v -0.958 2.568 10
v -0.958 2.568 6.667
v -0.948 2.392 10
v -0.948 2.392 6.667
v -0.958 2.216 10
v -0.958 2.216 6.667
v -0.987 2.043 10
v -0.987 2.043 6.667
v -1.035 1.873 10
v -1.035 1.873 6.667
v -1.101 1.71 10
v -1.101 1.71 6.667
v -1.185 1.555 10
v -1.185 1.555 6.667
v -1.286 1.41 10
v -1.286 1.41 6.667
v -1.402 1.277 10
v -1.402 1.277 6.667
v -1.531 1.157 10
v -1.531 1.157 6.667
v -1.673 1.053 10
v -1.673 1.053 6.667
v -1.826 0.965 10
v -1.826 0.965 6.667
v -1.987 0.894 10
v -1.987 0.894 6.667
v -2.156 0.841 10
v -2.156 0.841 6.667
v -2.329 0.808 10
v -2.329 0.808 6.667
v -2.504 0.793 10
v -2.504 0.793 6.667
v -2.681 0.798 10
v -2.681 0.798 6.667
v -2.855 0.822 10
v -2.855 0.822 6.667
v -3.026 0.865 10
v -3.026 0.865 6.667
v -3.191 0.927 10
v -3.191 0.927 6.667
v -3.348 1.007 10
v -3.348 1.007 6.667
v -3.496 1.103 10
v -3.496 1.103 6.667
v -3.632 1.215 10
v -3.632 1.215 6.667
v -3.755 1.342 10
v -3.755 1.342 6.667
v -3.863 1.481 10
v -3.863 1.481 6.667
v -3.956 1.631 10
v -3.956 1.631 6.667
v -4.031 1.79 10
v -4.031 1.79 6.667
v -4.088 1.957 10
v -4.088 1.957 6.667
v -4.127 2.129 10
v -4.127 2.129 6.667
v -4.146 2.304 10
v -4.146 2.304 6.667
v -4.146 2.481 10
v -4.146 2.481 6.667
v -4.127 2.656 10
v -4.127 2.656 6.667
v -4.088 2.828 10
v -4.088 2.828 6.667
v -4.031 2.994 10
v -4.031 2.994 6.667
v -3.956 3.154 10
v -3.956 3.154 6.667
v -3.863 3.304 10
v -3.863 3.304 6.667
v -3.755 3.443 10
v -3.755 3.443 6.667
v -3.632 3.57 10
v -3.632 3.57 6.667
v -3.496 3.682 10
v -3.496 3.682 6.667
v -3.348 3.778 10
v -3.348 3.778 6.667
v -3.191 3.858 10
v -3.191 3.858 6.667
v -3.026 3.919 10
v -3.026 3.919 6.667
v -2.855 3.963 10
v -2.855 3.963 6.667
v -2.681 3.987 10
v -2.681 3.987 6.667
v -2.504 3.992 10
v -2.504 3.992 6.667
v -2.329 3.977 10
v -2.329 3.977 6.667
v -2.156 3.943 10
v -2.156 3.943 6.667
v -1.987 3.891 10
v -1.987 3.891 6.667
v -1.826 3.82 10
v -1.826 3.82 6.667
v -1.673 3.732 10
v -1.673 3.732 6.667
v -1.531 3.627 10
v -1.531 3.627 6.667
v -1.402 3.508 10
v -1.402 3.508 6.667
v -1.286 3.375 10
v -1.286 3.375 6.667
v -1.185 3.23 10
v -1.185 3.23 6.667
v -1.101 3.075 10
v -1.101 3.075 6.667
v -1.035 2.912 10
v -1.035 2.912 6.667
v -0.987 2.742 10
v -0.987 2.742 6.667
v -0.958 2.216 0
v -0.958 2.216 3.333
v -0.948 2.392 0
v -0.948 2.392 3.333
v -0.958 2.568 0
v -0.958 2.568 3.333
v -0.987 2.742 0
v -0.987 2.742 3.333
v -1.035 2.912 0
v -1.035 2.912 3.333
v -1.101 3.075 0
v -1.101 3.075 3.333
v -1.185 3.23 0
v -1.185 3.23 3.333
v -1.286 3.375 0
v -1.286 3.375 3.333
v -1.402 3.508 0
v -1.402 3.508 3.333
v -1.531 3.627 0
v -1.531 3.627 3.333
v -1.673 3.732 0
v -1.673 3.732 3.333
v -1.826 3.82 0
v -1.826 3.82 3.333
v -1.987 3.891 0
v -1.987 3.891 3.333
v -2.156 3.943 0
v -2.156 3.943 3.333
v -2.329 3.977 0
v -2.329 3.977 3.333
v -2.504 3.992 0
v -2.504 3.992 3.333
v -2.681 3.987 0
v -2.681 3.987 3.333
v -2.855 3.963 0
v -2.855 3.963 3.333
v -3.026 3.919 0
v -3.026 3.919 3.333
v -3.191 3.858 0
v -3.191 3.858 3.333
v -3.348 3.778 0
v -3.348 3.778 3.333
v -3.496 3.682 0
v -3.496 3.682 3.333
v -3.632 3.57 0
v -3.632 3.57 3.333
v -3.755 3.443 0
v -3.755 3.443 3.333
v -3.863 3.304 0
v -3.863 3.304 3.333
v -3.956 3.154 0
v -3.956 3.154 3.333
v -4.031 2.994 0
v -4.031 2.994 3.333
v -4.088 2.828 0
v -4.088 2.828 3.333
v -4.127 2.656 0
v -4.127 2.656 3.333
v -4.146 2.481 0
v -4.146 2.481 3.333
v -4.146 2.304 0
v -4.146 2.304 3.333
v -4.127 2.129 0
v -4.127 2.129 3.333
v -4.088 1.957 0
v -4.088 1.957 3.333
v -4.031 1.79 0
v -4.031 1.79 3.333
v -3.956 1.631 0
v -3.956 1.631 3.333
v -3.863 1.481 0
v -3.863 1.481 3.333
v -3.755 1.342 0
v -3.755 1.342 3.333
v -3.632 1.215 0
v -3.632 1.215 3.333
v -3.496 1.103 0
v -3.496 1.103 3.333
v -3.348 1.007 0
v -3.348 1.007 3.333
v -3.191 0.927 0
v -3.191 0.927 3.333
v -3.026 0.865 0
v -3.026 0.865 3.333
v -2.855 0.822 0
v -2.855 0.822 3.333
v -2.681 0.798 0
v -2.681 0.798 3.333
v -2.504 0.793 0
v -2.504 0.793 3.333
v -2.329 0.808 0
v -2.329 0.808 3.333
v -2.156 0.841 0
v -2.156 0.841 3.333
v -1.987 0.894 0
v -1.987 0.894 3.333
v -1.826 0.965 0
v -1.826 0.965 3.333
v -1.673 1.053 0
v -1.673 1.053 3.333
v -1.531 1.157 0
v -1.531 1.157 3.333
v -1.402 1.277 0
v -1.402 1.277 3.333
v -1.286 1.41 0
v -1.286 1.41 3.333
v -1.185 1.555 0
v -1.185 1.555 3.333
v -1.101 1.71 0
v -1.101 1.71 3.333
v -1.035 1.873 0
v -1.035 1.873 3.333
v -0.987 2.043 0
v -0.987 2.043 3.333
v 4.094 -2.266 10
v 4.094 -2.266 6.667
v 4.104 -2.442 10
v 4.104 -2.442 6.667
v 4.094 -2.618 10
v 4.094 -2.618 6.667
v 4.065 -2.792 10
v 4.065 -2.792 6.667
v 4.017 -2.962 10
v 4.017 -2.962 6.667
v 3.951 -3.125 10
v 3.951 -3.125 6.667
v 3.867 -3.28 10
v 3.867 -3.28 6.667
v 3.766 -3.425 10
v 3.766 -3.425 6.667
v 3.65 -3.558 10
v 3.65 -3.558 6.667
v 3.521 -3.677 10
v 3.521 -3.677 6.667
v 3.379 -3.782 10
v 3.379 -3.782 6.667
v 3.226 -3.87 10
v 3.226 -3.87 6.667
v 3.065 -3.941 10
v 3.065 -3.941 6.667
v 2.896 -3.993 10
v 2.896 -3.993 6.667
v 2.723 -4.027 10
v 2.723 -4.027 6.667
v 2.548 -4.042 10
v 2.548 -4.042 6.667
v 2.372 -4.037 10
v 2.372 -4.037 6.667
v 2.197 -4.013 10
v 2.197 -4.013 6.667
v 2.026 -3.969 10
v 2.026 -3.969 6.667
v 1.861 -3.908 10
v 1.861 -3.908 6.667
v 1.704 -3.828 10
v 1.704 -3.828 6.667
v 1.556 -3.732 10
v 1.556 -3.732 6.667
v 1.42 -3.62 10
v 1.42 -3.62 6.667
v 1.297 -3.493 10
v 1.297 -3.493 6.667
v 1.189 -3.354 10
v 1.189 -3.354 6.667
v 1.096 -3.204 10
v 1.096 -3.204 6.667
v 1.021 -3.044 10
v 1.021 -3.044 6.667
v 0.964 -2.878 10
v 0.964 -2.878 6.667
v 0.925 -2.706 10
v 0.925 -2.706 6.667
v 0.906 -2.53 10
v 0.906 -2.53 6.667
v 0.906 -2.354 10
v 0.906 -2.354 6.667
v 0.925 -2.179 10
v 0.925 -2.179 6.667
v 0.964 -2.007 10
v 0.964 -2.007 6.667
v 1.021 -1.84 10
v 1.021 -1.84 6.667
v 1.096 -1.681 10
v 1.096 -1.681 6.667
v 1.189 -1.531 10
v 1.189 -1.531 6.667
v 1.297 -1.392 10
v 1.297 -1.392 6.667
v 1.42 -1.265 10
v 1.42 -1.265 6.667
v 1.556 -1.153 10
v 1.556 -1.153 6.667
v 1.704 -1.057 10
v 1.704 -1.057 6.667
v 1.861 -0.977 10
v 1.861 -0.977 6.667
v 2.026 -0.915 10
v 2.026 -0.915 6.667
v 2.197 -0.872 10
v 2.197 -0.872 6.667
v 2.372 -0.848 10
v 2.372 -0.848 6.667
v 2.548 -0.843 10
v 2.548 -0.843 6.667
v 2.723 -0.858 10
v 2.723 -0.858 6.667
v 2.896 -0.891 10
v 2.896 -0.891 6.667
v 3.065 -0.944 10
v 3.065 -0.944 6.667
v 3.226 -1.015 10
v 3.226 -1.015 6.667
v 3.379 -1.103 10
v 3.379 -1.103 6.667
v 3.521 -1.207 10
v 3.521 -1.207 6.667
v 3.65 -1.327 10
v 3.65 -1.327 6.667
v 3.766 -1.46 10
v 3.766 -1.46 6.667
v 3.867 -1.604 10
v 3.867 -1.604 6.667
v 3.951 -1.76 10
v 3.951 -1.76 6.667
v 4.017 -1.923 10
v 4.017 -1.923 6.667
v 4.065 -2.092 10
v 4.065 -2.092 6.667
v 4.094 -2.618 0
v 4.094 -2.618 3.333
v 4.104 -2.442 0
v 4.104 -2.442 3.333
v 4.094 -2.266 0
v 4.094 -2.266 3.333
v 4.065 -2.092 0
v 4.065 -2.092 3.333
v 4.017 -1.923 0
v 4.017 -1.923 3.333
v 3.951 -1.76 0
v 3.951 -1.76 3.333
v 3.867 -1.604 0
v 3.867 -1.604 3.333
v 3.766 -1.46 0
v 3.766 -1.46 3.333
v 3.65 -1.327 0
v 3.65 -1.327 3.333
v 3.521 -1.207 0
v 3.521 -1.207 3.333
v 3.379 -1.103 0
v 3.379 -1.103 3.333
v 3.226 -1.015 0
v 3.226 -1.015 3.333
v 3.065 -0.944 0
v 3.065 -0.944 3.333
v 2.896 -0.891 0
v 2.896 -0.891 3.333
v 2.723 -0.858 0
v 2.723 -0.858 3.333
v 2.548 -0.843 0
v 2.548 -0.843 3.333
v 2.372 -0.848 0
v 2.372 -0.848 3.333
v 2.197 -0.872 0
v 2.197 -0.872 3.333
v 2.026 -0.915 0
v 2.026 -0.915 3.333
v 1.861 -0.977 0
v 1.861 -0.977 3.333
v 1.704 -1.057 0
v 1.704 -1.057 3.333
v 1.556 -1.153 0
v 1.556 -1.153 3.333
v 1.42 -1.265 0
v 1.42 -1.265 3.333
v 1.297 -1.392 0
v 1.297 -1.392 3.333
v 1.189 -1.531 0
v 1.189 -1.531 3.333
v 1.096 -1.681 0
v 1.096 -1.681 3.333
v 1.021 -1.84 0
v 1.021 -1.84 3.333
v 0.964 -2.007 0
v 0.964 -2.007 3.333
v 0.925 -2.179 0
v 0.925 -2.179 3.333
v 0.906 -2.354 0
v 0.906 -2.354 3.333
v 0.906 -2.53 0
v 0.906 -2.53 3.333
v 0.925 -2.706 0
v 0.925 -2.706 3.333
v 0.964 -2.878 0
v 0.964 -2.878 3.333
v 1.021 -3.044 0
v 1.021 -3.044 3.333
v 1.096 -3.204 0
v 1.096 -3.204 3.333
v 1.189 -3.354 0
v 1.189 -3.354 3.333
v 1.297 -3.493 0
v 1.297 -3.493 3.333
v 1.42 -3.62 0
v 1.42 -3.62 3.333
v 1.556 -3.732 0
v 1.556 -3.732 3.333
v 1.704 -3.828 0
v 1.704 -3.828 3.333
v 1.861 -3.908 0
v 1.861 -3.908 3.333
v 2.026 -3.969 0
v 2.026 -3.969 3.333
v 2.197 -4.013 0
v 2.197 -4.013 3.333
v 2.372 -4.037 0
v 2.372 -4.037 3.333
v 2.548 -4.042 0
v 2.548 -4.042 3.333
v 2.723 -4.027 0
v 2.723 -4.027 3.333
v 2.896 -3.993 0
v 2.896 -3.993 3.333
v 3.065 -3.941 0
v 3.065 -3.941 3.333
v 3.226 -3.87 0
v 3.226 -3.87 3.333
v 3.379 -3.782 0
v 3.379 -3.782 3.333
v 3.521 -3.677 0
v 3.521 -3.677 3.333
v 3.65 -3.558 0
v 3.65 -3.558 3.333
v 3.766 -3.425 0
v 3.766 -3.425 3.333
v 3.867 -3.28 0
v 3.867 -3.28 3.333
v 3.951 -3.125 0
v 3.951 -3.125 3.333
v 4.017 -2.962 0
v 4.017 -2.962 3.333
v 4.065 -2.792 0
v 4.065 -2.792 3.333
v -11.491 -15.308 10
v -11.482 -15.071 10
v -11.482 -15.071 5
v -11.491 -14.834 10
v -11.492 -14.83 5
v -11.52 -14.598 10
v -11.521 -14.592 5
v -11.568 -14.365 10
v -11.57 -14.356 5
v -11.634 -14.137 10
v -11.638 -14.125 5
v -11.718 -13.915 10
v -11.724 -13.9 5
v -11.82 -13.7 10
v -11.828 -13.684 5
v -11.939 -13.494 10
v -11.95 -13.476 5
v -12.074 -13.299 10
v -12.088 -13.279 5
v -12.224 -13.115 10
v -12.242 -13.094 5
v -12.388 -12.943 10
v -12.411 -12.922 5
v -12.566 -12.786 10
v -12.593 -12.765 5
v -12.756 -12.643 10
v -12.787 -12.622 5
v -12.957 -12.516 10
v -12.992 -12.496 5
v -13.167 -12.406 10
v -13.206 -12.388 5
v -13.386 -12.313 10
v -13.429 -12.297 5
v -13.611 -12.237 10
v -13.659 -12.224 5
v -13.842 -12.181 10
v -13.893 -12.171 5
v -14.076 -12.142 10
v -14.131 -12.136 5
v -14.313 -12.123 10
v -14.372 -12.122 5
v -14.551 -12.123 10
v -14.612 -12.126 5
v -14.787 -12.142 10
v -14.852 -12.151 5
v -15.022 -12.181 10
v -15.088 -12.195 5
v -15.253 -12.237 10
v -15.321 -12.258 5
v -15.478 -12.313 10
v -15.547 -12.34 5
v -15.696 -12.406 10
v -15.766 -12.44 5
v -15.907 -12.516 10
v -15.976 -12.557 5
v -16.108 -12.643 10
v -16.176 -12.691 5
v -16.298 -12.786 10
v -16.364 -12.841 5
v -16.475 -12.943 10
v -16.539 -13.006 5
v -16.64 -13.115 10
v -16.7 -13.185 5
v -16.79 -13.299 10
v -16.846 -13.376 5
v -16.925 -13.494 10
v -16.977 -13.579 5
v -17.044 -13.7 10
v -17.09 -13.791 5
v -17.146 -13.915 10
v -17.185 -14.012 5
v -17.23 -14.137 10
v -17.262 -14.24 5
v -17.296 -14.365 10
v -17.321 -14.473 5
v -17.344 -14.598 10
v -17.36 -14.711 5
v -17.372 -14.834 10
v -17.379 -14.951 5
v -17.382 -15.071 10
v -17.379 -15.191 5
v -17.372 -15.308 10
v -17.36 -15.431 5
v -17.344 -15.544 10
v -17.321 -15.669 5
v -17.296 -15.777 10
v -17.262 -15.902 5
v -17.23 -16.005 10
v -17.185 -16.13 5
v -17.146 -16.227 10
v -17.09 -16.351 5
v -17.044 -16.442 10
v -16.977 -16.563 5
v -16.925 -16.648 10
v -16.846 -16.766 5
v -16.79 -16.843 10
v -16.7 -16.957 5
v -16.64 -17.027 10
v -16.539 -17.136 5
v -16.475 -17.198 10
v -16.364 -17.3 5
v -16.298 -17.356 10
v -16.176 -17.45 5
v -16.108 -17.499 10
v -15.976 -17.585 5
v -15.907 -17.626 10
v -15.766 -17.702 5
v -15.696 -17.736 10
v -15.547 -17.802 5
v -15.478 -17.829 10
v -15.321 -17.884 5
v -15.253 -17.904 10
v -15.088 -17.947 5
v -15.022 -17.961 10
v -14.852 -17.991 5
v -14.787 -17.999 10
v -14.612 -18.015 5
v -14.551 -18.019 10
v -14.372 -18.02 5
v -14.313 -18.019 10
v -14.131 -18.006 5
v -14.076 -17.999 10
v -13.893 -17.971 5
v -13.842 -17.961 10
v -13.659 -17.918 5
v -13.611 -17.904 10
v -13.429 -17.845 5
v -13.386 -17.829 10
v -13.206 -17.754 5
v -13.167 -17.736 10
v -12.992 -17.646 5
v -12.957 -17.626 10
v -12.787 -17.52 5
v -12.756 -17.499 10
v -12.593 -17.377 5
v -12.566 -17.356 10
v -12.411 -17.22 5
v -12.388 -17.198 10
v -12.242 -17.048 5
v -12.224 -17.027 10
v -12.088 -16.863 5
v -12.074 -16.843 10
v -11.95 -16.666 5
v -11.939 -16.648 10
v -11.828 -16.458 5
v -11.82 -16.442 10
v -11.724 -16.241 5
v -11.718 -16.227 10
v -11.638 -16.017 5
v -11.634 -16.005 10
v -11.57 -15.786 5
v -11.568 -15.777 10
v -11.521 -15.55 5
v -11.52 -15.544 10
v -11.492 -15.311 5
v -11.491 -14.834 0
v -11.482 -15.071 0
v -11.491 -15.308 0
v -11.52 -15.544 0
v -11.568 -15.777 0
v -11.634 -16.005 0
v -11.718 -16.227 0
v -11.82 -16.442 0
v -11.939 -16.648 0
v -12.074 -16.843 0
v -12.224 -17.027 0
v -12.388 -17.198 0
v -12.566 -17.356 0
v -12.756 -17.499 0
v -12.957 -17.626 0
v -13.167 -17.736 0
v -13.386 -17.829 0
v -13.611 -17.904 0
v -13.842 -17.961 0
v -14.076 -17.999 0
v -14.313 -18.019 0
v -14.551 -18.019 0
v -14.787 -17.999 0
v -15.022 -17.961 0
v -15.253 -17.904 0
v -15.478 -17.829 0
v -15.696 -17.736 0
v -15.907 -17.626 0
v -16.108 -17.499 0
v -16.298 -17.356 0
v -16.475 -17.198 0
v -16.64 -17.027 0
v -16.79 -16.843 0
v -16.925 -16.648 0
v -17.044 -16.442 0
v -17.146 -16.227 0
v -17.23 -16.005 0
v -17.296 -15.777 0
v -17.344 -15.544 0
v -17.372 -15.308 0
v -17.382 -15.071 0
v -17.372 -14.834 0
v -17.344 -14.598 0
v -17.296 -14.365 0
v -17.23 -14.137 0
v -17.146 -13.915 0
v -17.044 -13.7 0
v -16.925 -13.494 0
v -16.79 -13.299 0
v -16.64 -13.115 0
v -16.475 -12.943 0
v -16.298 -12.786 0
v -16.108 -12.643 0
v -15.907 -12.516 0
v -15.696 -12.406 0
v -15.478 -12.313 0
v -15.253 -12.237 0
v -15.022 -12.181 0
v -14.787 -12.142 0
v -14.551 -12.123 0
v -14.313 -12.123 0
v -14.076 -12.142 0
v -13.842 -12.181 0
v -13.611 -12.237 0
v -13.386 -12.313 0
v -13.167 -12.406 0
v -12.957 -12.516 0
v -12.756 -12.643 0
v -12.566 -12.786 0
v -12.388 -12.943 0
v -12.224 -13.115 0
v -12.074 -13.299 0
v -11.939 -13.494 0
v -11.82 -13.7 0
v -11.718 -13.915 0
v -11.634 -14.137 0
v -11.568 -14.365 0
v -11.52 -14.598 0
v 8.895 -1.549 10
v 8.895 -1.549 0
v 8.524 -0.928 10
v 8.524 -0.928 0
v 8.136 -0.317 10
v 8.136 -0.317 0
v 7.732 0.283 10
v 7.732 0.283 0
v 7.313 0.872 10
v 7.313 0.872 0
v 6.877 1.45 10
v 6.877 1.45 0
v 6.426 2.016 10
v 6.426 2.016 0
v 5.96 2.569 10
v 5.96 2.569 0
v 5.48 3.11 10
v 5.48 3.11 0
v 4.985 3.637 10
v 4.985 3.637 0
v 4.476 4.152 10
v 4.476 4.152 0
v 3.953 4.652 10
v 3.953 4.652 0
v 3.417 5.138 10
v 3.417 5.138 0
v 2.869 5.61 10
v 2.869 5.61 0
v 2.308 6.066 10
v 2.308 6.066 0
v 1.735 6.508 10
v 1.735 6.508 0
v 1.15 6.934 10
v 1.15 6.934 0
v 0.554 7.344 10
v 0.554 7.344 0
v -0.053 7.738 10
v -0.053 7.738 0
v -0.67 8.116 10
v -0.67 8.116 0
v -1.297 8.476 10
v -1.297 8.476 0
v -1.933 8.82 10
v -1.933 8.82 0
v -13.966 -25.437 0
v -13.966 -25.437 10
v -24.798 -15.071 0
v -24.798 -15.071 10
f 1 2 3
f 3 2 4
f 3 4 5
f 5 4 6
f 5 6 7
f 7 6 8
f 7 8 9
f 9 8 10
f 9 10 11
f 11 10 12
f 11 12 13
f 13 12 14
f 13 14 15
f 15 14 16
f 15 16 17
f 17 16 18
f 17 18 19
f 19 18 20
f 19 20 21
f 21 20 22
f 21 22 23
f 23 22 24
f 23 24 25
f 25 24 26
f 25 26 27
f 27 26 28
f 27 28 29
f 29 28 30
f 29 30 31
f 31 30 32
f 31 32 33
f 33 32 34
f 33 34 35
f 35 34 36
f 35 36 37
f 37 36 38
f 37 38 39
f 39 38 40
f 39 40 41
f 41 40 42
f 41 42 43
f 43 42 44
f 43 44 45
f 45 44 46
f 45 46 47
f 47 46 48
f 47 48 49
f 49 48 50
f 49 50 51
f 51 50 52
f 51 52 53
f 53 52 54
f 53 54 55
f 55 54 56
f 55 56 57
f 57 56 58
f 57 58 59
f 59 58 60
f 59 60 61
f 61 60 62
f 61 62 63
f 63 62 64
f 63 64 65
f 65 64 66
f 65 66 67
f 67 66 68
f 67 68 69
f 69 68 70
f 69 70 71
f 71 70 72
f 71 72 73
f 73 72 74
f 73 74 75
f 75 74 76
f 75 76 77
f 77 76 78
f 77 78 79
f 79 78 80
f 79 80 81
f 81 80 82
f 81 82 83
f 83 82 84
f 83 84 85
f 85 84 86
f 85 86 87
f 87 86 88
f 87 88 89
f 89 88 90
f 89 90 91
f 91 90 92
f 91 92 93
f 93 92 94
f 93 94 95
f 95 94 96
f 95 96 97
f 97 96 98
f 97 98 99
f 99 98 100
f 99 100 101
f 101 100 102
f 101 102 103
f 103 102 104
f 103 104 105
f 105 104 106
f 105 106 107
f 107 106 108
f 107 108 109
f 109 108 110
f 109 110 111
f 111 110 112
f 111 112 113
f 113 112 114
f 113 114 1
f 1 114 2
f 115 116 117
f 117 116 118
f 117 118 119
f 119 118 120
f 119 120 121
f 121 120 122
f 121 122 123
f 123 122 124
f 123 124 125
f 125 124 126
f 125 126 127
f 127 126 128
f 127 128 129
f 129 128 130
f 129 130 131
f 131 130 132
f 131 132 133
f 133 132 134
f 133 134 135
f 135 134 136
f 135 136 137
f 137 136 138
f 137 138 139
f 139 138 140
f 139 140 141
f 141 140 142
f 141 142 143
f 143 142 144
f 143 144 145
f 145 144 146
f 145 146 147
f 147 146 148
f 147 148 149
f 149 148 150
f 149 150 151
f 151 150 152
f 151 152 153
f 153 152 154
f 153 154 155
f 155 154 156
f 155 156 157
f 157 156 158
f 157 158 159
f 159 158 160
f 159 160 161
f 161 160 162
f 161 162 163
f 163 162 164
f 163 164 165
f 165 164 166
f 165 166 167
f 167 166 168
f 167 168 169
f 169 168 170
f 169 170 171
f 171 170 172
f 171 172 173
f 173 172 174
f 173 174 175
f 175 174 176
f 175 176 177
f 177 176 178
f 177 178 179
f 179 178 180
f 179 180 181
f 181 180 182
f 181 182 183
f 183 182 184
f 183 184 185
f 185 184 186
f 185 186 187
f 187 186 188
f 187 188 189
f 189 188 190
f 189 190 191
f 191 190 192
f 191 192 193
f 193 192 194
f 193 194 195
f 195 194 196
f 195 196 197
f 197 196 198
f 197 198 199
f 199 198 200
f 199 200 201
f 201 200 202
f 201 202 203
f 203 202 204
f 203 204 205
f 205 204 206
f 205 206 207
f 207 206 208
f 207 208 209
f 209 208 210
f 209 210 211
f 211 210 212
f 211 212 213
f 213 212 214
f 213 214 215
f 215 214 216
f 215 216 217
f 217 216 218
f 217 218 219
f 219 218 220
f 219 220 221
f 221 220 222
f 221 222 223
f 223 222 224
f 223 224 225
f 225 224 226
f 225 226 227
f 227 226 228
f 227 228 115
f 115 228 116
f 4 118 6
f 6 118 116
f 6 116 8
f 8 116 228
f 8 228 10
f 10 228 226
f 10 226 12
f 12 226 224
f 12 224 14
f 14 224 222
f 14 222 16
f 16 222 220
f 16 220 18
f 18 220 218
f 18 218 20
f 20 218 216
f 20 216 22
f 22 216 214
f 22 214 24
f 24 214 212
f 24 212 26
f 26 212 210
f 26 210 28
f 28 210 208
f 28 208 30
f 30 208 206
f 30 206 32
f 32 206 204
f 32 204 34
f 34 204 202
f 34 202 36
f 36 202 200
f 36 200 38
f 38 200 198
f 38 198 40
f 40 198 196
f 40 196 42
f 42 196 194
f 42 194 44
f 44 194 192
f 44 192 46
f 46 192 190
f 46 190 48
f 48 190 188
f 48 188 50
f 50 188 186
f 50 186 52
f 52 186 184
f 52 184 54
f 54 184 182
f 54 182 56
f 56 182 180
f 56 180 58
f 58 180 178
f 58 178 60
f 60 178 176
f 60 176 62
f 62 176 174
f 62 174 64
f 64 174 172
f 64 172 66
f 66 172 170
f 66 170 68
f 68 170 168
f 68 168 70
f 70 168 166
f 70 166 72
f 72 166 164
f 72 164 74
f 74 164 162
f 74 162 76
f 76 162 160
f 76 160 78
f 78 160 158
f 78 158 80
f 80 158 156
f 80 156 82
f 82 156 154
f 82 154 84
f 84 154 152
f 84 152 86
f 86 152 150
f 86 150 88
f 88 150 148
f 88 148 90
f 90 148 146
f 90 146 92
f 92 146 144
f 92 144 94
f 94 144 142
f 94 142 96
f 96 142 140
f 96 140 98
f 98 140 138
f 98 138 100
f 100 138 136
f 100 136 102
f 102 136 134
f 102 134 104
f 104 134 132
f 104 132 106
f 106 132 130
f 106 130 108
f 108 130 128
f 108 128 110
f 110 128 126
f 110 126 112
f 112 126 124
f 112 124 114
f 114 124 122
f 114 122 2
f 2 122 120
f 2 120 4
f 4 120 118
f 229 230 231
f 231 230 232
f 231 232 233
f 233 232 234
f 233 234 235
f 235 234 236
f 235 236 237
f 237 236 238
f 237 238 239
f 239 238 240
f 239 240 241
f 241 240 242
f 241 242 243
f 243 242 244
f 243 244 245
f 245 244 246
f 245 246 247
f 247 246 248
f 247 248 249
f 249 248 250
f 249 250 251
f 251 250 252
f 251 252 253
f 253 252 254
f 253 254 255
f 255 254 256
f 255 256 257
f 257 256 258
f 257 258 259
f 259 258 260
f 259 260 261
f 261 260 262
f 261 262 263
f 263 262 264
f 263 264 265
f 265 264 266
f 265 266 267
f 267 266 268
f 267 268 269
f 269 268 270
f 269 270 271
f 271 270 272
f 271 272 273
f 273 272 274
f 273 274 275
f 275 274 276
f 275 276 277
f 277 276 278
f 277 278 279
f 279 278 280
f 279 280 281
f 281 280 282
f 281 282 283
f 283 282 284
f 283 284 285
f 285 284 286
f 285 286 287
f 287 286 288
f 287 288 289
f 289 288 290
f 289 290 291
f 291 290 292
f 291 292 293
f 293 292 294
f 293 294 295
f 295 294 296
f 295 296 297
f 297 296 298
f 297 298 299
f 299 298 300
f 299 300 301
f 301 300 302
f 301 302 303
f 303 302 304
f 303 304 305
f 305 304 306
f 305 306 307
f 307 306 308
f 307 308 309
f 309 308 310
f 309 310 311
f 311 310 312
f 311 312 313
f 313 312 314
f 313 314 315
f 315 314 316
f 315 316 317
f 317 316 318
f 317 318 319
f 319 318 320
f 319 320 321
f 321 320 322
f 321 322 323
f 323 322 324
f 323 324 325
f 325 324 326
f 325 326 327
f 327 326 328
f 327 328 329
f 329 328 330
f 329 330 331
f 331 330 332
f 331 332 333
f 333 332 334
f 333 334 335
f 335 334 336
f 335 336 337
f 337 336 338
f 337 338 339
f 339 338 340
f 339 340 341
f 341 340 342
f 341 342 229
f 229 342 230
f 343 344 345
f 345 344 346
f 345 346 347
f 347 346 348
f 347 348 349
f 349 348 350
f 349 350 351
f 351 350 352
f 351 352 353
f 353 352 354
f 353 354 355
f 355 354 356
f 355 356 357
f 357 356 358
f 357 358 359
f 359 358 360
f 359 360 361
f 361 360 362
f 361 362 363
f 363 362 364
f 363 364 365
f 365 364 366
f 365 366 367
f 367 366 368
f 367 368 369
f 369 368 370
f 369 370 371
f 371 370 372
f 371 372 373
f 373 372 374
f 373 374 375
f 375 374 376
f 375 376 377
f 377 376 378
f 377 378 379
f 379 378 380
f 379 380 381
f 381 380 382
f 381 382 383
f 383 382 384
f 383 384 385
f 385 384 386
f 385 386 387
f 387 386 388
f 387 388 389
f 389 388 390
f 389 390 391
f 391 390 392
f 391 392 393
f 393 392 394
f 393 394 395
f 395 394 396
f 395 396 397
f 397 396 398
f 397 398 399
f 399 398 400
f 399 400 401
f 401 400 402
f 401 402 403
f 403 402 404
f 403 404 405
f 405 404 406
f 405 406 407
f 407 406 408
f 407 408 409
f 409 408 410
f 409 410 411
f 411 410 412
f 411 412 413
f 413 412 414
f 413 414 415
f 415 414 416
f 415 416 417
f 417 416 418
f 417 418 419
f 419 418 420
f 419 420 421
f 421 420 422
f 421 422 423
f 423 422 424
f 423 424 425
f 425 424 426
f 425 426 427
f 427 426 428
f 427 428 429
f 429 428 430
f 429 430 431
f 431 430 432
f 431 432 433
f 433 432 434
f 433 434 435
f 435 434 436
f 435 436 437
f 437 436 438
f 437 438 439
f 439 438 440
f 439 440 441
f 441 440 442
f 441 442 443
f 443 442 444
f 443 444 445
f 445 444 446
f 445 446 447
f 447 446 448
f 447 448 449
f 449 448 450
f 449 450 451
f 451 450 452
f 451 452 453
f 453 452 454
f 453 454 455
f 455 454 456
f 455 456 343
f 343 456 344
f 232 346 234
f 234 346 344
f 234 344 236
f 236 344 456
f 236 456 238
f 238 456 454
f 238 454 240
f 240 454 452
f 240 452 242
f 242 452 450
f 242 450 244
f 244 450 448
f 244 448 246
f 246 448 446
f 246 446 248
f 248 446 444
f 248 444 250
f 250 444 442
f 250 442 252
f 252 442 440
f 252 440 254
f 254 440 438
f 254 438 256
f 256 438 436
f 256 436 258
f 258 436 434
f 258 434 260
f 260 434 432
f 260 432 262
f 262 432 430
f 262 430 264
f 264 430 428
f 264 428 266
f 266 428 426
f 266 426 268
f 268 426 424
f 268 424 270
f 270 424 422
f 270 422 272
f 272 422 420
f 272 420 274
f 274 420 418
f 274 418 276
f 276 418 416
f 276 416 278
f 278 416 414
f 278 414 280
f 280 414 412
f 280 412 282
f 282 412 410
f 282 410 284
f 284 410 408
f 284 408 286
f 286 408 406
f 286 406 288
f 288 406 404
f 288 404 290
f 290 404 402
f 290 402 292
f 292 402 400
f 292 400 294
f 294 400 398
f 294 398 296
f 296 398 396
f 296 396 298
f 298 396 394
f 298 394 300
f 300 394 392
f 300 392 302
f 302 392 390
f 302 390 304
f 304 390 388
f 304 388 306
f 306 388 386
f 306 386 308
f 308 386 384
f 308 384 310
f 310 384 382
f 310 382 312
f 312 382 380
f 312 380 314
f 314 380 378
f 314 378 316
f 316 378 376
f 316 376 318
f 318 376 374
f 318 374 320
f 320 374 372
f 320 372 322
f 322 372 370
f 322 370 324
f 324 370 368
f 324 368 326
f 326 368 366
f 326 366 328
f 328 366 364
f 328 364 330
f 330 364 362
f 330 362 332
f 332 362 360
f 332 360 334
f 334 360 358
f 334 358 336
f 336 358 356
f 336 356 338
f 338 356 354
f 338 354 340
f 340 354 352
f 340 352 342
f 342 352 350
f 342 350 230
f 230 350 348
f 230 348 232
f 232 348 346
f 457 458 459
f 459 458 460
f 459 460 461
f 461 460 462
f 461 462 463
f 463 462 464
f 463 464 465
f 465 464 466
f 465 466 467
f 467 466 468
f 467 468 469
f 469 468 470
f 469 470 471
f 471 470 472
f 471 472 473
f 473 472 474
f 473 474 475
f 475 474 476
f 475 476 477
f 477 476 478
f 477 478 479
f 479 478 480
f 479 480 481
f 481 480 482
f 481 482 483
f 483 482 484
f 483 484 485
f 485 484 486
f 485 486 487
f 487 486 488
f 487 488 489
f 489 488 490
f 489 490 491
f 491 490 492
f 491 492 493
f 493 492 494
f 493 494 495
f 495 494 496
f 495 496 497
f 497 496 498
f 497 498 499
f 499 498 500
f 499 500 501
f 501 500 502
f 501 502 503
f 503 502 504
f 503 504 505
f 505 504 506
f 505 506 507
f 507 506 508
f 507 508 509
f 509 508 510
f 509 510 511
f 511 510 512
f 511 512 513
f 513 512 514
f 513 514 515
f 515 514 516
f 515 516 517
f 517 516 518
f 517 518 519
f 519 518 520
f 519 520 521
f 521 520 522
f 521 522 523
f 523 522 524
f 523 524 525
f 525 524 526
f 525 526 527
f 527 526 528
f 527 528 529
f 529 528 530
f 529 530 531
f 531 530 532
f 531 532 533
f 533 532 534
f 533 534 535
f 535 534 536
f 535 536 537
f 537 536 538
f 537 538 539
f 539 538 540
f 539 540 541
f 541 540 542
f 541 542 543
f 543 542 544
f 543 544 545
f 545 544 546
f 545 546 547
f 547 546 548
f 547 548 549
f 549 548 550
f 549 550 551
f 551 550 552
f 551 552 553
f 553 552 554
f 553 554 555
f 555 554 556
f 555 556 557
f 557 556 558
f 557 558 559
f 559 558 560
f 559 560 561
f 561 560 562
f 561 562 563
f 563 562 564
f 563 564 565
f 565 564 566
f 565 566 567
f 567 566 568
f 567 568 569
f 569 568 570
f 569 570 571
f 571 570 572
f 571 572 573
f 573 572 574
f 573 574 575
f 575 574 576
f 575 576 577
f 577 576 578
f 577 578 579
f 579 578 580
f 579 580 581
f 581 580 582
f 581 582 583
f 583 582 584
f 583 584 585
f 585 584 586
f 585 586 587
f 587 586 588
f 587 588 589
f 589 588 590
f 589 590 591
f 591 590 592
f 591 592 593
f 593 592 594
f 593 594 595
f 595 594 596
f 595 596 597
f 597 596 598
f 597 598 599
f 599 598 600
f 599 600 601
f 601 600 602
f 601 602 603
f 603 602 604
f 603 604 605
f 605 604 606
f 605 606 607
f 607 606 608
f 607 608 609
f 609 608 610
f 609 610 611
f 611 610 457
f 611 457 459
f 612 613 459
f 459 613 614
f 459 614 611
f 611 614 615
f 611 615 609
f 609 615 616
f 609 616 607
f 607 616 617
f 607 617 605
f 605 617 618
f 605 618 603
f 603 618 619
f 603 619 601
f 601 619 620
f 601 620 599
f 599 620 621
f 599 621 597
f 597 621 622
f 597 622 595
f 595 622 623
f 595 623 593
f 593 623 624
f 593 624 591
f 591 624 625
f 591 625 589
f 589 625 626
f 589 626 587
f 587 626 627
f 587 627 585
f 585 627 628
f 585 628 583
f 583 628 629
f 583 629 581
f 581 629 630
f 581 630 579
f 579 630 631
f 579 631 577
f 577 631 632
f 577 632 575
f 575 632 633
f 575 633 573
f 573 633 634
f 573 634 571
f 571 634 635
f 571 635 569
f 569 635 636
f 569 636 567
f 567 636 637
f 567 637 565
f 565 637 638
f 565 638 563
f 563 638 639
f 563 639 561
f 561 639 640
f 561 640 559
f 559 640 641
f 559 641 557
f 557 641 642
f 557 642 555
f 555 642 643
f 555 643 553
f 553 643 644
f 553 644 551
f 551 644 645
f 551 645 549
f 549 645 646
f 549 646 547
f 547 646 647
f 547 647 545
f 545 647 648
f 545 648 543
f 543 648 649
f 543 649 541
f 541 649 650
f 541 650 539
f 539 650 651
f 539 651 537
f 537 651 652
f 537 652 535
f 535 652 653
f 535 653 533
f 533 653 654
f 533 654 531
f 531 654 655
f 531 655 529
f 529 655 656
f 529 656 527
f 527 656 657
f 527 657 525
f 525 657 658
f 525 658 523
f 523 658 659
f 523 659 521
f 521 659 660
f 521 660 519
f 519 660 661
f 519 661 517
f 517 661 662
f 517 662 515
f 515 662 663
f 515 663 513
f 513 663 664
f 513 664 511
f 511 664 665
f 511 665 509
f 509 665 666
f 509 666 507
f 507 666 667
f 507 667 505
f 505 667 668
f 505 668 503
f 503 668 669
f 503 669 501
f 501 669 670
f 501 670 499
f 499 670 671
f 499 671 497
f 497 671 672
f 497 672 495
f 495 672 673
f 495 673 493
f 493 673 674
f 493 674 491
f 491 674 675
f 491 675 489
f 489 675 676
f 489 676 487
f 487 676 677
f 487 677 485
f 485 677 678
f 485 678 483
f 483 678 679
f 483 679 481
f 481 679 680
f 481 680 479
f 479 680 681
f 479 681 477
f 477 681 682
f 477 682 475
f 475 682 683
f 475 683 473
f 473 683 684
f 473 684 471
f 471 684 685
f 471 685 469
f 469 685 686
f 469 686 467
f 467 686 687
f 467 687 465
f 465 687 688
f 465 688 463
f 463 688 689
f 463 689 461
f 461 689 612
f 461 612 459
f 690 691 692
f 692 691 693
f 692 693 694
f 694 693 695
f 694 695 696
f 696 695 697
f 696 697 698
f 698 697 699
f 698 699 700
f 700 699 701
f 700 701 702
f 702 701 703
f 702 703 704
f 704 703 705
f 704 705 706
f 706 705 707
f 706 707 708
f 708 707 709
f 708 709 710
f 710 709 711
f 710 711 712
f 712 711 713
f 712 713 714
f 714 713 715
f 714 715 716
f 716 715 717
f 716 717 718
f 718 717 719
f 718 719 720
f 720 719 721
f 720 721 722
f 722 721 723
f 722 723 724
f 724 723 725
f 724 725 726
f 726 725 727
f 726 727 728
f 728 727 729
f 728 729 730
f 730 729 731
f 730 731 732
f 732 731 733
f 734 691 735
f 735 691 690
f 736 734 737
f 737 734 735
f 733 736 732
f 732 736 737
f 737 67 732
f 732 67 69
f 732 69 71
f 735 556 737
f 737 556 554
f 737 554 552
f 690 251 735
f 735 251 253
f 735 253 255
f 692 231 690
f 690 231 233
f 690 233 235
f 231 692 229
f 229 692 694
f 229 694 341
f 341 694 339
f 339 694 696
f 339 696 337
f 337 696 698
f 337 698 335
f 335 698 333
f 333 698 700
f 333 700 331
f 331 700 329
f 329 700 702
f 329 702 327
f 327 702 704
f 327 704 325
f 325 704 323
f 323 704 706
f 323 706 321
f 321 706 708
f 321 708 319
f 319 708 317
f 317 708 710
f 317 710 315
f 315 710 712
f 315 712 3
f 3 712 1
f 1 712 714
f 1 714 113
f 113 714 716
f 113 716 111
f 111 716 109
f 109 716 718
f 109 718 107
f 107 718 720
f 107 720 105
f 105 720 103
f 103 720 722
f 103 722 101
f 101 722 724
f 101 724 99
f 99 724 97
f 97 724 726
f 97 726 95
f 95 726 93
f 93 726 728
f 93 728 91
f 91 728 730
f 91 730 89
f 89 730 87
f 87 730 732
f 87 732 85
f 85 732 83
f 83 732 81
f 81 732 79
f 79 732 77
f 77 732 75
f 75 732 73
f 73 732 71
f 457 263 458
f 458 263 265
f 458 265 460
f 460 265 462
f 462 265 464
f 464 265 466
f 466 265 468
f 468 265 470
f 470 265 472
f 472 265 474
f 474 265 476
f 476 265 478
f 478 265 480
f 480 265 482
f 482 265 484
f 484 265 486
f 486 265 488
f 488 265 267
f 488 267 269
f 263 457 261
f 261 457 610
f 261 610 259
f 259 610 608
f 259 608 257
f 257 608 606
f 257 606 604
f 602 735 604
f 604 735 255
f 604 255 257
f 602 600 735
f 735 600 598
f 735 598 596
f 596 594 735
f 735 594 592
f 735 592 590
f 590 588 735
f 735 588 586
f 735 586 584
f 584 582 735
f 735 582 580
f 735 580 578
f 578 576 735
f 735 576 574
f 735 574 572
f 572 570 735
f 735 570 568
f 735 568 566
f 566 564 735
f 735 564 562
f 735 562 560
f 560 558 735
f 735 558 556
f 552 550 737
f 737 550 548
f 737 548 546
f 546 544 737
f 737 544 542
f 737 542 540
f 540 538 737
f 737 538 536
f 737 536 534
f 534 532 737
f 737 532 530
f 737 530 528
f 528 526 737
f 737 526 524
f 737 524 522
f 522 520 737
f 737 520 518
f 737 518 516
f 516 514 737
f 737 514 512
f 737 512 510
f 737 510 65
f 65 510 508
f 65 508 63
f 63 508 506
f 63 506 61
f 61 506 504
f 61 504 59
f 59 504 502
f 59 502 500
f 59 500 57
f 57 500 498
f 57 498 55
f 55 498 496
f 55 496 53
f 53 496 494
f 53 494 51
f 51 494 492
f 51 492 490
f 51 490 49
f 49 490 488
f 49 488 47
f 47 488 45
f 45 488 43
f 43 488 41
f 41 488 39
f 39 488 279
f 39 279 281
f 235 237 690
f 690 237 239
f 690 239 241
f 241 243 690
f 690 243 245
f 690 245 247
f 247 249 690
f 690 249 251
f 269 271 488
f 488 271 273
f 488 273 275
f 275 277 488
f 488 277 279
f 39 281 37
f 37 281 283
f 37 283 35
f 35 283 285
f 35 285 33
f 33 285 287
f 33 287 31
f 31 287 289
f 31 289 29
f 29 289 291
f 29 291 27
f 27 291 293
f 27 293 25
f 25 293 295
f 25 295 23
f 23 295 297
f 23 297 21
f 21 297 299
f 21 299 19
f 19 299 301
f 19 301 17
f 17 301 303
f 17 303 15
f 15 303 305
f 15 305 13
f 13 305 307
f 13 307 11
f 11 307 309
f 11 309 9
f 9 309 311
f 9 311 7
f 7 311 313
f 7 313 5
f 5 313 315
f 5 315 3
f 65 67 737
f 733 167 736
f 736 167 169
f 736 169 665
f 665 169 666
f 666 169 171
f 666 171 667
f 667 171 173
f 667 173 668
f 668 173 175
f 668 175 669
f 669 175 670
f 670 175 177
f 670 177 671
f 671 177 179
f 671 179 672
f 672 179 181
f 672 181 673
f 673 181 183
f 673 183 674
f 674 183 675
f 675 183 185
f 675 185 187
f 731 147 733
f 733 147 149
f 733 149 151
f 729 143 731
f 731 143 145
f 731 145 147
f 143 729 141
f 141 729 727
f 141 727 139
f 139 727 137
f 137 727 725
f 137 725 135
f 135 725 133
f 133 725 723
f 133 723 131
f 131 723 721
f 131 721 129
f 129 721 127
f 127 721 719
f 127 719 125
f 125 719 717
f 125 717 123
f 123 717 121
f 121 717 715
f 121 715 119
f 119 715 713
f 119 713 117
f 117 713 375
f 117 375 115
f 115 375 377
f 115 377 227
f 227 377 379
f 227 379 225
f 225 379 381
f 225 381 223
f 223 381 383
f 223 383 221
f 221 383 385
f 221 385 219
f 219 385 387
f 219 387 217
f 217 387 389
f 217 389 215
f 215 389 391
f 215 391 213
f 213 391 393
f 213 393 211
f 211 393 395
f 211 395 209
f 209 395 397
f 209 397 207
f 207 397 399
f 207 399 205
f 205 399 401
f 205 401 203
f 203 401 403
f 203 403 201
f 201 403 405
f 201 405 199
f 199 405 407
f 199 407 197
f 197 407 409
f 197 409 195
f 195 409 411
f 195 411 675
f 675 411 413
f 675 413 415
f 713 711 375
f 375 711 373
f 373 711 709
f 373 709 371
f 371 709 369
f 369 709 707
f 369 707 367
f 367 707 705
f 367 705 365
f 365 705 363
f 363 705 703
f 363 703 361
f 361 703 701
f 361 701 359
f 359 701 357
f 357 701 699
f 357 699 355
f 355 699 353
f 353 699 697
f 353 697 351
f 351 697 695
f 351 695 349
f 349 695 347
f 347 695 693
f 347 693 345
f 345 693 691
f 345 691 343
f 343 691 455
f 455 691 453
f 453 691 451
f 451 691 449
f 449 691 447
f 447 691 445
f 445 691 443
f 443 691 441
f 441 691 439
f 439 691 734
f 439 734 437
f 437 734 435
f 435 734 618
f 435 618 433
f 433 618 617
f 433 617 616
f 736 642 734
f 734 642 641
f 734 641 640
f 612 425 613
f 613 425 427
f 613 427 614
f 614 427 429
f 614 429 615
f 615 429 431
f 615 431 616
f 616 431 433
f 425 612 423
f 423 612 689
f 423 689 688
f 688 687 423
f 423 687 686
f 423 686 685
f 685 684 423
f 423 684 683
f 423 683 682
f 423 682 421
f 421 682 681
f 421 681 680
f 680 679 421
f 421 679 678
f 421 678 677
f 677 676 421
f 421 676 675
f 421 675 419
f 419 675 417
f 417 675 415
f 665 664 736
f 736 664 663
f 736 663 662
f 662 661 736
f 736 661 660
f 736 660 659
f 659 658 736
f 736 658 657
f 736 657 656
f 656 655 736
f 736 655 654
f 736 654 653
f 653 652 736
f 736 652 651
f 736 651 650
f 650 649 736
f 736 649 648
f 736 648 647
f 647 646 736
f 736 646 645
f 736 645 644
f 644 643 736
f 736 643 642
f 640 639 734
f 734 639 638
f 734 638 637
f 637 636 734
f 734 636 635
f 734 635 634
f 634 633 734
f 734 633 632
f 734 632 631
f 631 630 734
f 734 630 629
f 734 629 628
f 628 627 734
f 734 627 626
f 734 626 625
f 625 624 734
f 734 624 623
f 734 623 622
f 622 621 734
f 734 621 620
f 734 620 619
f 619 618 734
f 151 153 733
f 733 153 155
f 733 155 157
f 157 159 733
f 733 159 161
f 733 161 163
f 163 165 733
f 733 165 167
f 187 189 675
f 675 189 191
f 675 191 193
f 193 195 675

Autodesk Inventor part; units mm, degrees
ref_plane "YZ Plane" through (0, 0, 0) normal (1, 0, 0) x (0, 1, 0)
ref_plane "XZ Plane" through (0, 0, 0) normal (0, 1, 0) x (-1, 0, 0)
ref_plane "XY Plane" through (0, 0, 0) normal (0, 0, 1) x (1, 0, 0)
sketch "Skizze1" plane through (0, 0, 0) normal (0, 0, 1) x (1, 0, 0)
  circle A0 centre (2.5036, -2.4424) radius 1.4 construction
  circle A1 centre (-2.5484, 2.3924) radius 1.4 construction
  arc A2 (8.8953, -1.5488) -> (-1.9335, 8.8203) centre (-14.4319, -15.0709) ccw projected
  line L0 (-1.9335, 8.8203) -> (-8.8953, 1.5457) projected
  line L1 (-8.8953, 1.5457) -> (1.9365, -8.8203) projected
  line L2 (1.9365, -8.8203) -> (8.8953, -1.5488) projected
  arc A3 (-17.415, -14.7529) -> (-12.7255, -17.5384) centre (-14.4319, -15.0709) ccw projected
  line L3 (-8.8953, 1.5457) -> (-24.7975, -15.0712)
  line L4 (-24.7975, -15.0712) -> (-13.9657, -25.4371)
  line L5 (-13.9657, -25.4371) -> (1.9365, -8.8203)
  arc A4 (-13.2888, -12.8475) -> (-12.2085, -16.214) centre (-14.4319, -15.0709) ccw projected
  circle A5 centre (-14.4319, -15.0709) radius 2.95
  circle A6 centre (-2.5484, 2.3924) radius 1.6
  circle A7 centre (2.5036, -2.4424) radius 1.6
  point P0 (0, 0)
  dimension "d0" = 23
  dimension "d1" = 5.9
  dimension "d2" = 3.2
  dimension "d3" = 3.2
extrude "Extrusion1" add sketch "Skizze1" along normal blind 10
sketch "Skizze2" plane through (0, 0, 10) normal (0, 0, 1) x (1, 0, 0)
  point P0 (0, 0)
sketch "Skizze3" plane through (0, 0, 10) normal (0, 0, 1) x (1, 0, 0)
  point P0 (0, 0)
properties part number "IM_Matchboxscope_Laserholder_2"
